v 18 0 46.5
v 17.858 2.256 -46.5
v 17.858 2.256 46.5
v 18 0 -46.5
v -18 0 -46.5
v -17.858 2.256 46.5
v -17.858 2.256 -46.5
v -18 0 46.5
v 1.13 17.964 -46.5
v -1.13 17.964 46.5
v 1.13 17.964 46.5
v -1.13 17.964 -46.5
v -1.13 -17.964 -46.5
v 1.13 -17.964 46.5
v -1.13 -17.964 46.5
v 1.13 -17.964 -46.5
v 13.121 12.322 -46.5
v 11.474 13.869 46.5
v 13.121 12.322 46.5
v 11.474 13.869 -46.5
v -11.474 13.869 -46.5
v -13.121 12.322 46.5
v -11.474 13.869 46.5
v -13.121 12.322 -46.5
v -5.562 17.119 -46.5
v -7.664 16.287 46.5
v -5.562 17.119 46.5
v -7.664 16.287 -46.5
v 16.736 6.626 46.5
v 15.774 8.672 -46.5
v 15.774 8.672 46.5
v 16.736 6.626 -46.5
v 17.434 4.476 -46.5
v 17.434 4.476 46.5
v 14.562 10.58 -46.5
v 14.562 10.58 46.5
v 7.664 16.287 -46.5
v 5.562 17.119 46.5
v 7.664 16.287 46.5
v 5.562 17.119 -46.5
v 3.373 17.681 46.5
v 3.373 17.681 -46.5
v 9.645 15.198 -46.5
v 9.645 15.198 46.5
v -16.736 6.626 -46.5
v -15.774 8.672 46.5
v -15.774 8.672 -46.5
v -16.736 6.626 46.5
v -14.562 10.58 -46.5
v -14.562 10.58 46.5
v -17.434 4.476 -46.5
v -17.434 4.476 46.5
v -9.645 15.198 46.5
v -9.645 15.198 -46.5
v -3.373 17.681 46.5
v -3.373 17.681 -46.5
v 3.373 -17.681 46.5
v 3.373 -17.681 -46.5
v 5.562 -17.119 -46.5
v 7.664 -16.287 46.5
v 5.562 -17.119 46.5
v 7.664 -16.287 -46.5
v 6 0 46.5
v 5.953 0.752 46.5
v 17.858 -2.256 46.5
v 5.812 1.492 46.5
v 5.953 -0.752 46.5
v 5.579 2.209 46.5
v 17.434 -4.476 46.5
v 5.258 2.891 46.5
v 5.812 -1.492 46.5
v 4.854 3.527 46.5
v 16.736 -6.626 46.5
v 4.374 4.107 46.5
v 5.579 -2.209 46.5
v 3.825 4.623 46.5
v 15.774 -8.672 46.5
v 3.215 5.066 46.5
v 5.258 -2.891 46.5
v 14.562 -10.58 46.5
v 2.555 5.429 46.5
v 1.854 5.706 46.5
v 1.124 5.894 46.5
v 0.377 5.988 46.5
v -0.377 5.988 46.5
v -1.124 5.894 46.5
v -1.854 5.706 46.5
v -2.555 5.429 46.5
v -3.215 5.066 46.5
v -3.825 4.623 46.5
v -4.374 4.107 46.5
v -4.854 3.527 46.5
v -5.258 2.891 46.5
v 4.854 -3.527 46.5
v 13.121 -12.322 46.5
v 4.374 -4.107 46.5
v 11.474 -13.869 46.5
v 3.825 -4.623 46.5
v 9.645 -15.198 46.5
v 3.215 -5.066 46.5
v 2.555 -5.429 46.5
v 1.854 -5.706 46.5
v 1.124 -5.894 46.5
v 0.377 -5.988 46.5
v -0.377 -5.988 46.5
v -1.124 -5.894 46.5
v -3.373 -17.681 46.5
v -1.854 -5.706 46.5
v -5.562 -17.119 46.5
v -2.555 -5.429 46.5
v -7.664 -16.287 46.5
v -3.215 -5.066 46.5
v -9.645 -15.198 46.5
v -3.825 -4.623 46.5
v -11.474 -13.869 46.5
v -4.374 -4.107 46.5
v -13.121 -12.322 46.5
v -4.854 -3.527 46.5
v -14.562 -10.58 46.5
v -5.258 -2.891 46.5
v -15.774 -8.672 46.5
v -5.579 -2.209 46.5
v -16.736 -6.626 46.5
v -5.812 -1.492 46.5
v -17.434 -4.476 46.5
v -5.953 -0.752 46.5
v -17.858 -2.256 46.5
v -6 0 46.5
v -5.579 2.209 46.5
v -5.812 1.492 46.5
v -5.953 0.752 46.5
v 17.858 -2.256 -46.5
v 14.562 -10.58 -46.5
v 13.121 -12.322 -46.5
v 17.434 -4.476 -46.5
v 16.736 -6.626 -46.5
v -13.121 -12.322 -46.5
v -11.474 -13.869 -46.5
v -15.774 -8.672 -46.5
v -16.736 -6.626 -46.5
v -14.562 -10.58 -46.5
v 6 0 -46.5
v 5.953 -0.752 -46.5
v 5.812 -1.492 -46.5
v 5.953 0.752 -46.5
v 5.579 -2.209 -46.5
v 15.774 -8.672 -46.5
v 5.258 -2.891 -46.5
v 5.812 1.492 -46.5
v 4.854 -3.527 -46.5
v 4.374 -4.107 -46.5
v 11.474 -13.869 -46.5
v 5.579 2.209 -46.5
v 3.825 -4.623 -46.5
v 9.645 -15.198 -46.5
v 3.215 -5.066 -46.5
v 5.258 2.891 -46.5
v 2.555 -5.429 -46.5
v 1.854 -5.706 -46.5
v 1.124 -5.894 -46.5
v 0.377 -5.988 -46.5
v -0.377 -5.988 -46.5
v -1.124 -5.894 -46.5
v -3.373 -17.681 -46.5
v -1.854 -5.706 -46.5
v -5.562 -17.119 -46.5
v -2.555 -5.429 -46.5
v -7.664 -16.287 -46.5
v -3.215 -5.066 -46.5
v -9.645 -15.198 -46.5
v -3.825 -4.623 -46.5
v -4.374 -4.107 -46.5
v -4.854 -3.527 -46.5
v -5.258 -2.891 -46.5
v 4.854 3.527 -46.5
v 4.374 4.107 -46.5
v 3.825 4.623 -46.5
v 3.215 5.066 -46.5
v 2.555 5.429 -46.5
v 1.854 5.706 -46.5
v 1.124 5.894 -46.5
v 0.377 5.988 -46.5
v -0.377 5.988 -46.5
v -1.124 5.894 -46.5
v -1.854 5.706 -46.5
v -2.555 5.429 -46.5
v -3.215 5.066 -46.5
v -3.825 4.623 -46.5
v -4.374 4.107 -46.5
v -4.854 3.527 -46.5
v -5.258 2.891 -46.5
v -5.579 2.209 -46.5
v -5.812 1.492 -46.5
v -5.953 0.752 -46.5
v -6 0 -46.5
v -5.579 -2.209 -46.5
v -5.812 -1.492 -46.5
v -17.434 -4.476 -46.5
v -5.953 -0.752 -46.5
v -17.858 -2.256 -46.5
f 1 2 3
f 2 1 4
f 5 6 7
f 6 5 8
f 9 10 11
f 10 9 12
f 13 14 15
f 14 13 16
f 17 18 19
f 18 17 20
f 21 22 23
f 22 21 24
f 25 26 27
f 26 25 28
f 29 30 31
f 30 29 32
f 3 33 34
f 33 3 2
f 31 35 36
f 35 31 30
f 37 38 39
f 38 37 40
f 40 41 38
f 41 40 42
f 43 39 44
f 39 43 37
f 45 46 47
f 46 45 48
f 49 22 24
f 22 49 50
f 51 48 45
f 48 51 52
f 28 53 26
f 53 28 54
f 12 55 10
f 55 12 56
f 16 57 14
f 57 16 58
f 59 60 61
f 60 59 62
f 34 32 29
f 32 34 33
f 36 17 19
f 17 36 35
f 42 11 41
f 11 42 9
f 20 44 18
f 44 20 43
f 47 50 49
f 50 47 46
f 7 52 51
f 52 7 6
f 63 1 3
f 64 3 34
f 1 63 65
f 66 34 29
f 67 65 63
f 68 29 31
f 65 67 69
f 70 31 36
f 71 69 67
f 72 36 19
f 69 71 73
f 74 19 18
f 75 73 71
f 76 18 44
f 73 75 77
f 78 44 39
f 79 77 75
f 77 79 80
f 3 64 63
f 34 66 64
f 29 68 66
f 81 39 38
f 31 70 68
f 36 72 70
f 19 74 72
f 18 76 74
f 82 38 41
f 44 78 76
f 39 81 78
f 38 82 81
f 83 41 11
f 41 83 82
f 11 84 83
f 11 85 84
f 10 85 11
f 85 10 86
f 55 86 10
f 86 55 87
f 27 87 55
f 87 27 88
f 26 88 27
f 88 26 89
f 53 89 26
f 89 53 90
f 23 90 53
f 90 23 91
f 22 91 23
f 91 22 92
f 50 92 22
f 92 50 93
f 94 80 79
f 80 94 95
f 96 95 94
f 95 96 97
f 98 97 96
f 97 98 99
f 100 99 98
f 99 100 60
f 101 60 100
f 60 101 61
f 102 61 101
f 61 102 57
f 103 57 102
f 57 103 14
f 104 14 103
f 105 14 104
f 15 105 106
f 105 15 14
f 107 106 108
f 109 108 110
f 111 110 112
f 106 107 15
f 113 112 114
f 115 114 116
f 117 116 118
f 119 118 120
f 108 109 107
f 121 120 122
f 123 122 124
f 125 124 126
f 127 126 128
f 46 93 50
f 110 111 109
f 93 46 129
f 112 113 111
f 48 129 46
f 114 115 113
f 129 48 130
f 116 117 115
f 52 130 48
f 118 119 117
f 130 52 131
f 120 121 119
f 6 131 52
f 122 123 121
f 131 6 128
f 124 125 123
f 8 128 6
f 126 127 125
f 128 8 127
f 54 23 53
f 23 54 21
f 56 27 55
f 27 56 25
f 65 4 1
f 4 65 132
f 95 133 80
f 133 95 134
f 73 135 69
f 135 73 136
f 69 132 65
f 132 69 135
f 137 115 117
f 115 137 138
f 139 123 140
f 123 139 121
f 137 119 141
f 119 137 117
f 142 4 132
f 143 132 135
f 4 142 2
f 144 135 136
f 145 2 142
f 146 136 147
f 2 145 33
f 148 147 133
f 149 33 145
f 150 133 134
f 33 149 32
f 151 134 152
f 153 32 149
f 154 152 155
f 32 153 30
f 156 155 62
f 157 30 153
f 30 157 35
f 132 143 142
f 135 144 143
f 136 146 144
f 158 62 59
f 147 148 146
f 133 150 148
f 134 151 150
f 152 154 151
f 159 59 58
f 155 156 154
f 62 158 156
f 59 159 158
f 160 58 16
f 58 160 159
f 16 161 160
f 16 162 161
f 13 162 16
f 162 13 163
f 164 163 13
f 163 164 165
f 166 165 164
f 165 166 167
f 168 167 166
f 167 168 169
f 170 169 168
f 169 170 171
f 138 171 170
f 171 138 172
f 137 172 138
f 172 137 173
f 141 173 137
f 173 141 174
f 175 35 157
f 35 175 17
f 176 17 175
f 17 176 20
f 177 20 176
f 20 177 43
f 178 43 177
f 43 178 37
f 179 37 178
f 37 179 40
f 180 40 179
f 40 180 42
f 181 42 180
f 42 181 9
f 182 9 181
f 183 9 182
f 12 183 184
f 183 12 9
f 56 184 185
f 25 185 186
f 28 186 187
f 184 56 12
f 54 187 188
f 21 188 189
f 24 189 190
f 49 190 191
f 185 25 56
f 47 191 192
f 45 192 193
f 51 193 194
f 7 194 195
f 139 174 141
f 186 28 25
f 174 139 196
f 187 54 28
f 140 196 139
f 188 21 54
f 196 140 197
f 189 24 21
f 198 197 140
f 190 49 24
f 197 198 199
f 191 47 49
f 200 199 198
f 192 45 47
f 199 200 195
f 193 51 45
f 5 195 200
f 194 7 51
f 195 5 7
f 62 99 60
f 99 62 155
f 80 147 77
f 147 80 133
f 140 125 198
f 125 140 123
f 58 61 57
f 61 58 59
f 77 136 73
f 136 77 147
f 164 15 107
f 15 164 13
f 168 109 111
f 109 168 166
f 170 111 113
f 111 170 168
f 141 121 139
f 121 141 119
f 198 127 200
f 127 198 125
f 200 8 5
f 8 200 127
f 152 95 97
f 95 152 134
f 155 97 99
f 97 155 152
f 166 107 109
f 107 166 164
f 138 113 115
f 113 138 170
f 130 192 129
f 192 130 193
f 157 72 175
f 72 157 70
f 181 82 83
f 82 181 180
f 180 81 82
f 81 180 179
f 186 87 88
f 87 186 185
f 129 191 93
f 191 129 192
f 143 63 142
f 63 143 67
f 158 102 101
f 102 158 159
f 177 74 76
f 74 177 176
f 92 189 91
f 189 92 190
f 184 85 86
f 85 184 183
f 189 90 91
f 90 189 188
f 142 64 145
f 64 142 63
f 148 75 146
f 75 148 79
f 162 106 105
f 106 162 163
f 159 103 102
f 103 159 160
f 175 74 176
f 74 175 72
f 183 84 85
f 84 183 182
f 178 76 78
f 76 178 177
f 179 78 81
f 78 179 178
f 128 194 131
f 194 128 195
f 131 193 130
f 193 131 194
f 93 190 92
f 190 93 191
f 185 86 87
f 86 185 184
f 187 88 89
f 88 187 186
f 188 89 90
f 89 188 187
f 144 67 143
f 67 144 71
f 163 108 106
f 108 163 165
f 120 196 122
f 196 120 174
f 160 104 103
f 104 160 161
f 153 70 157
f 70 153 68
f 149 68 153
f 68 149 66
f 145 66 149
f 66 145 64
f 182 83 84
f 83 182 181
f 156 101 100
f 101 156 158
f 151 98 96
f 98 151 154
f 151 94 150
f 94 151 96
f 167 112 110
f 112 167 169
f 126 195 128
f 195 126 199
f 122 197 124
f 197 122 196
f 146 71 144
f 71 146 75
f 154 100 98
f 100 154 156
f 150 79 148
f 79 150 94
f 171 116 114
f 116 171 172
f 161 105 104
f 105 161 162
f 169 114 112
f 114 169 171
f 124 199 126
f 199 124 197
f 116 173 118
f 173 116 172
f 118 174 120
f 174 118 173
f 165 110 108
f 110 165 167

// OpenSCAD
$fn = 50;


difference() {
	union() {
		translate(v = [0, 0, -46.5000000000]) {
			cylinder(h = 93, r = 18.0000000000);
		}
	}
	union() {
		translate(v = [0, 0, -100.0000000000]) {
			cylinder(h = 200, r = 6);
		}
	}
}
